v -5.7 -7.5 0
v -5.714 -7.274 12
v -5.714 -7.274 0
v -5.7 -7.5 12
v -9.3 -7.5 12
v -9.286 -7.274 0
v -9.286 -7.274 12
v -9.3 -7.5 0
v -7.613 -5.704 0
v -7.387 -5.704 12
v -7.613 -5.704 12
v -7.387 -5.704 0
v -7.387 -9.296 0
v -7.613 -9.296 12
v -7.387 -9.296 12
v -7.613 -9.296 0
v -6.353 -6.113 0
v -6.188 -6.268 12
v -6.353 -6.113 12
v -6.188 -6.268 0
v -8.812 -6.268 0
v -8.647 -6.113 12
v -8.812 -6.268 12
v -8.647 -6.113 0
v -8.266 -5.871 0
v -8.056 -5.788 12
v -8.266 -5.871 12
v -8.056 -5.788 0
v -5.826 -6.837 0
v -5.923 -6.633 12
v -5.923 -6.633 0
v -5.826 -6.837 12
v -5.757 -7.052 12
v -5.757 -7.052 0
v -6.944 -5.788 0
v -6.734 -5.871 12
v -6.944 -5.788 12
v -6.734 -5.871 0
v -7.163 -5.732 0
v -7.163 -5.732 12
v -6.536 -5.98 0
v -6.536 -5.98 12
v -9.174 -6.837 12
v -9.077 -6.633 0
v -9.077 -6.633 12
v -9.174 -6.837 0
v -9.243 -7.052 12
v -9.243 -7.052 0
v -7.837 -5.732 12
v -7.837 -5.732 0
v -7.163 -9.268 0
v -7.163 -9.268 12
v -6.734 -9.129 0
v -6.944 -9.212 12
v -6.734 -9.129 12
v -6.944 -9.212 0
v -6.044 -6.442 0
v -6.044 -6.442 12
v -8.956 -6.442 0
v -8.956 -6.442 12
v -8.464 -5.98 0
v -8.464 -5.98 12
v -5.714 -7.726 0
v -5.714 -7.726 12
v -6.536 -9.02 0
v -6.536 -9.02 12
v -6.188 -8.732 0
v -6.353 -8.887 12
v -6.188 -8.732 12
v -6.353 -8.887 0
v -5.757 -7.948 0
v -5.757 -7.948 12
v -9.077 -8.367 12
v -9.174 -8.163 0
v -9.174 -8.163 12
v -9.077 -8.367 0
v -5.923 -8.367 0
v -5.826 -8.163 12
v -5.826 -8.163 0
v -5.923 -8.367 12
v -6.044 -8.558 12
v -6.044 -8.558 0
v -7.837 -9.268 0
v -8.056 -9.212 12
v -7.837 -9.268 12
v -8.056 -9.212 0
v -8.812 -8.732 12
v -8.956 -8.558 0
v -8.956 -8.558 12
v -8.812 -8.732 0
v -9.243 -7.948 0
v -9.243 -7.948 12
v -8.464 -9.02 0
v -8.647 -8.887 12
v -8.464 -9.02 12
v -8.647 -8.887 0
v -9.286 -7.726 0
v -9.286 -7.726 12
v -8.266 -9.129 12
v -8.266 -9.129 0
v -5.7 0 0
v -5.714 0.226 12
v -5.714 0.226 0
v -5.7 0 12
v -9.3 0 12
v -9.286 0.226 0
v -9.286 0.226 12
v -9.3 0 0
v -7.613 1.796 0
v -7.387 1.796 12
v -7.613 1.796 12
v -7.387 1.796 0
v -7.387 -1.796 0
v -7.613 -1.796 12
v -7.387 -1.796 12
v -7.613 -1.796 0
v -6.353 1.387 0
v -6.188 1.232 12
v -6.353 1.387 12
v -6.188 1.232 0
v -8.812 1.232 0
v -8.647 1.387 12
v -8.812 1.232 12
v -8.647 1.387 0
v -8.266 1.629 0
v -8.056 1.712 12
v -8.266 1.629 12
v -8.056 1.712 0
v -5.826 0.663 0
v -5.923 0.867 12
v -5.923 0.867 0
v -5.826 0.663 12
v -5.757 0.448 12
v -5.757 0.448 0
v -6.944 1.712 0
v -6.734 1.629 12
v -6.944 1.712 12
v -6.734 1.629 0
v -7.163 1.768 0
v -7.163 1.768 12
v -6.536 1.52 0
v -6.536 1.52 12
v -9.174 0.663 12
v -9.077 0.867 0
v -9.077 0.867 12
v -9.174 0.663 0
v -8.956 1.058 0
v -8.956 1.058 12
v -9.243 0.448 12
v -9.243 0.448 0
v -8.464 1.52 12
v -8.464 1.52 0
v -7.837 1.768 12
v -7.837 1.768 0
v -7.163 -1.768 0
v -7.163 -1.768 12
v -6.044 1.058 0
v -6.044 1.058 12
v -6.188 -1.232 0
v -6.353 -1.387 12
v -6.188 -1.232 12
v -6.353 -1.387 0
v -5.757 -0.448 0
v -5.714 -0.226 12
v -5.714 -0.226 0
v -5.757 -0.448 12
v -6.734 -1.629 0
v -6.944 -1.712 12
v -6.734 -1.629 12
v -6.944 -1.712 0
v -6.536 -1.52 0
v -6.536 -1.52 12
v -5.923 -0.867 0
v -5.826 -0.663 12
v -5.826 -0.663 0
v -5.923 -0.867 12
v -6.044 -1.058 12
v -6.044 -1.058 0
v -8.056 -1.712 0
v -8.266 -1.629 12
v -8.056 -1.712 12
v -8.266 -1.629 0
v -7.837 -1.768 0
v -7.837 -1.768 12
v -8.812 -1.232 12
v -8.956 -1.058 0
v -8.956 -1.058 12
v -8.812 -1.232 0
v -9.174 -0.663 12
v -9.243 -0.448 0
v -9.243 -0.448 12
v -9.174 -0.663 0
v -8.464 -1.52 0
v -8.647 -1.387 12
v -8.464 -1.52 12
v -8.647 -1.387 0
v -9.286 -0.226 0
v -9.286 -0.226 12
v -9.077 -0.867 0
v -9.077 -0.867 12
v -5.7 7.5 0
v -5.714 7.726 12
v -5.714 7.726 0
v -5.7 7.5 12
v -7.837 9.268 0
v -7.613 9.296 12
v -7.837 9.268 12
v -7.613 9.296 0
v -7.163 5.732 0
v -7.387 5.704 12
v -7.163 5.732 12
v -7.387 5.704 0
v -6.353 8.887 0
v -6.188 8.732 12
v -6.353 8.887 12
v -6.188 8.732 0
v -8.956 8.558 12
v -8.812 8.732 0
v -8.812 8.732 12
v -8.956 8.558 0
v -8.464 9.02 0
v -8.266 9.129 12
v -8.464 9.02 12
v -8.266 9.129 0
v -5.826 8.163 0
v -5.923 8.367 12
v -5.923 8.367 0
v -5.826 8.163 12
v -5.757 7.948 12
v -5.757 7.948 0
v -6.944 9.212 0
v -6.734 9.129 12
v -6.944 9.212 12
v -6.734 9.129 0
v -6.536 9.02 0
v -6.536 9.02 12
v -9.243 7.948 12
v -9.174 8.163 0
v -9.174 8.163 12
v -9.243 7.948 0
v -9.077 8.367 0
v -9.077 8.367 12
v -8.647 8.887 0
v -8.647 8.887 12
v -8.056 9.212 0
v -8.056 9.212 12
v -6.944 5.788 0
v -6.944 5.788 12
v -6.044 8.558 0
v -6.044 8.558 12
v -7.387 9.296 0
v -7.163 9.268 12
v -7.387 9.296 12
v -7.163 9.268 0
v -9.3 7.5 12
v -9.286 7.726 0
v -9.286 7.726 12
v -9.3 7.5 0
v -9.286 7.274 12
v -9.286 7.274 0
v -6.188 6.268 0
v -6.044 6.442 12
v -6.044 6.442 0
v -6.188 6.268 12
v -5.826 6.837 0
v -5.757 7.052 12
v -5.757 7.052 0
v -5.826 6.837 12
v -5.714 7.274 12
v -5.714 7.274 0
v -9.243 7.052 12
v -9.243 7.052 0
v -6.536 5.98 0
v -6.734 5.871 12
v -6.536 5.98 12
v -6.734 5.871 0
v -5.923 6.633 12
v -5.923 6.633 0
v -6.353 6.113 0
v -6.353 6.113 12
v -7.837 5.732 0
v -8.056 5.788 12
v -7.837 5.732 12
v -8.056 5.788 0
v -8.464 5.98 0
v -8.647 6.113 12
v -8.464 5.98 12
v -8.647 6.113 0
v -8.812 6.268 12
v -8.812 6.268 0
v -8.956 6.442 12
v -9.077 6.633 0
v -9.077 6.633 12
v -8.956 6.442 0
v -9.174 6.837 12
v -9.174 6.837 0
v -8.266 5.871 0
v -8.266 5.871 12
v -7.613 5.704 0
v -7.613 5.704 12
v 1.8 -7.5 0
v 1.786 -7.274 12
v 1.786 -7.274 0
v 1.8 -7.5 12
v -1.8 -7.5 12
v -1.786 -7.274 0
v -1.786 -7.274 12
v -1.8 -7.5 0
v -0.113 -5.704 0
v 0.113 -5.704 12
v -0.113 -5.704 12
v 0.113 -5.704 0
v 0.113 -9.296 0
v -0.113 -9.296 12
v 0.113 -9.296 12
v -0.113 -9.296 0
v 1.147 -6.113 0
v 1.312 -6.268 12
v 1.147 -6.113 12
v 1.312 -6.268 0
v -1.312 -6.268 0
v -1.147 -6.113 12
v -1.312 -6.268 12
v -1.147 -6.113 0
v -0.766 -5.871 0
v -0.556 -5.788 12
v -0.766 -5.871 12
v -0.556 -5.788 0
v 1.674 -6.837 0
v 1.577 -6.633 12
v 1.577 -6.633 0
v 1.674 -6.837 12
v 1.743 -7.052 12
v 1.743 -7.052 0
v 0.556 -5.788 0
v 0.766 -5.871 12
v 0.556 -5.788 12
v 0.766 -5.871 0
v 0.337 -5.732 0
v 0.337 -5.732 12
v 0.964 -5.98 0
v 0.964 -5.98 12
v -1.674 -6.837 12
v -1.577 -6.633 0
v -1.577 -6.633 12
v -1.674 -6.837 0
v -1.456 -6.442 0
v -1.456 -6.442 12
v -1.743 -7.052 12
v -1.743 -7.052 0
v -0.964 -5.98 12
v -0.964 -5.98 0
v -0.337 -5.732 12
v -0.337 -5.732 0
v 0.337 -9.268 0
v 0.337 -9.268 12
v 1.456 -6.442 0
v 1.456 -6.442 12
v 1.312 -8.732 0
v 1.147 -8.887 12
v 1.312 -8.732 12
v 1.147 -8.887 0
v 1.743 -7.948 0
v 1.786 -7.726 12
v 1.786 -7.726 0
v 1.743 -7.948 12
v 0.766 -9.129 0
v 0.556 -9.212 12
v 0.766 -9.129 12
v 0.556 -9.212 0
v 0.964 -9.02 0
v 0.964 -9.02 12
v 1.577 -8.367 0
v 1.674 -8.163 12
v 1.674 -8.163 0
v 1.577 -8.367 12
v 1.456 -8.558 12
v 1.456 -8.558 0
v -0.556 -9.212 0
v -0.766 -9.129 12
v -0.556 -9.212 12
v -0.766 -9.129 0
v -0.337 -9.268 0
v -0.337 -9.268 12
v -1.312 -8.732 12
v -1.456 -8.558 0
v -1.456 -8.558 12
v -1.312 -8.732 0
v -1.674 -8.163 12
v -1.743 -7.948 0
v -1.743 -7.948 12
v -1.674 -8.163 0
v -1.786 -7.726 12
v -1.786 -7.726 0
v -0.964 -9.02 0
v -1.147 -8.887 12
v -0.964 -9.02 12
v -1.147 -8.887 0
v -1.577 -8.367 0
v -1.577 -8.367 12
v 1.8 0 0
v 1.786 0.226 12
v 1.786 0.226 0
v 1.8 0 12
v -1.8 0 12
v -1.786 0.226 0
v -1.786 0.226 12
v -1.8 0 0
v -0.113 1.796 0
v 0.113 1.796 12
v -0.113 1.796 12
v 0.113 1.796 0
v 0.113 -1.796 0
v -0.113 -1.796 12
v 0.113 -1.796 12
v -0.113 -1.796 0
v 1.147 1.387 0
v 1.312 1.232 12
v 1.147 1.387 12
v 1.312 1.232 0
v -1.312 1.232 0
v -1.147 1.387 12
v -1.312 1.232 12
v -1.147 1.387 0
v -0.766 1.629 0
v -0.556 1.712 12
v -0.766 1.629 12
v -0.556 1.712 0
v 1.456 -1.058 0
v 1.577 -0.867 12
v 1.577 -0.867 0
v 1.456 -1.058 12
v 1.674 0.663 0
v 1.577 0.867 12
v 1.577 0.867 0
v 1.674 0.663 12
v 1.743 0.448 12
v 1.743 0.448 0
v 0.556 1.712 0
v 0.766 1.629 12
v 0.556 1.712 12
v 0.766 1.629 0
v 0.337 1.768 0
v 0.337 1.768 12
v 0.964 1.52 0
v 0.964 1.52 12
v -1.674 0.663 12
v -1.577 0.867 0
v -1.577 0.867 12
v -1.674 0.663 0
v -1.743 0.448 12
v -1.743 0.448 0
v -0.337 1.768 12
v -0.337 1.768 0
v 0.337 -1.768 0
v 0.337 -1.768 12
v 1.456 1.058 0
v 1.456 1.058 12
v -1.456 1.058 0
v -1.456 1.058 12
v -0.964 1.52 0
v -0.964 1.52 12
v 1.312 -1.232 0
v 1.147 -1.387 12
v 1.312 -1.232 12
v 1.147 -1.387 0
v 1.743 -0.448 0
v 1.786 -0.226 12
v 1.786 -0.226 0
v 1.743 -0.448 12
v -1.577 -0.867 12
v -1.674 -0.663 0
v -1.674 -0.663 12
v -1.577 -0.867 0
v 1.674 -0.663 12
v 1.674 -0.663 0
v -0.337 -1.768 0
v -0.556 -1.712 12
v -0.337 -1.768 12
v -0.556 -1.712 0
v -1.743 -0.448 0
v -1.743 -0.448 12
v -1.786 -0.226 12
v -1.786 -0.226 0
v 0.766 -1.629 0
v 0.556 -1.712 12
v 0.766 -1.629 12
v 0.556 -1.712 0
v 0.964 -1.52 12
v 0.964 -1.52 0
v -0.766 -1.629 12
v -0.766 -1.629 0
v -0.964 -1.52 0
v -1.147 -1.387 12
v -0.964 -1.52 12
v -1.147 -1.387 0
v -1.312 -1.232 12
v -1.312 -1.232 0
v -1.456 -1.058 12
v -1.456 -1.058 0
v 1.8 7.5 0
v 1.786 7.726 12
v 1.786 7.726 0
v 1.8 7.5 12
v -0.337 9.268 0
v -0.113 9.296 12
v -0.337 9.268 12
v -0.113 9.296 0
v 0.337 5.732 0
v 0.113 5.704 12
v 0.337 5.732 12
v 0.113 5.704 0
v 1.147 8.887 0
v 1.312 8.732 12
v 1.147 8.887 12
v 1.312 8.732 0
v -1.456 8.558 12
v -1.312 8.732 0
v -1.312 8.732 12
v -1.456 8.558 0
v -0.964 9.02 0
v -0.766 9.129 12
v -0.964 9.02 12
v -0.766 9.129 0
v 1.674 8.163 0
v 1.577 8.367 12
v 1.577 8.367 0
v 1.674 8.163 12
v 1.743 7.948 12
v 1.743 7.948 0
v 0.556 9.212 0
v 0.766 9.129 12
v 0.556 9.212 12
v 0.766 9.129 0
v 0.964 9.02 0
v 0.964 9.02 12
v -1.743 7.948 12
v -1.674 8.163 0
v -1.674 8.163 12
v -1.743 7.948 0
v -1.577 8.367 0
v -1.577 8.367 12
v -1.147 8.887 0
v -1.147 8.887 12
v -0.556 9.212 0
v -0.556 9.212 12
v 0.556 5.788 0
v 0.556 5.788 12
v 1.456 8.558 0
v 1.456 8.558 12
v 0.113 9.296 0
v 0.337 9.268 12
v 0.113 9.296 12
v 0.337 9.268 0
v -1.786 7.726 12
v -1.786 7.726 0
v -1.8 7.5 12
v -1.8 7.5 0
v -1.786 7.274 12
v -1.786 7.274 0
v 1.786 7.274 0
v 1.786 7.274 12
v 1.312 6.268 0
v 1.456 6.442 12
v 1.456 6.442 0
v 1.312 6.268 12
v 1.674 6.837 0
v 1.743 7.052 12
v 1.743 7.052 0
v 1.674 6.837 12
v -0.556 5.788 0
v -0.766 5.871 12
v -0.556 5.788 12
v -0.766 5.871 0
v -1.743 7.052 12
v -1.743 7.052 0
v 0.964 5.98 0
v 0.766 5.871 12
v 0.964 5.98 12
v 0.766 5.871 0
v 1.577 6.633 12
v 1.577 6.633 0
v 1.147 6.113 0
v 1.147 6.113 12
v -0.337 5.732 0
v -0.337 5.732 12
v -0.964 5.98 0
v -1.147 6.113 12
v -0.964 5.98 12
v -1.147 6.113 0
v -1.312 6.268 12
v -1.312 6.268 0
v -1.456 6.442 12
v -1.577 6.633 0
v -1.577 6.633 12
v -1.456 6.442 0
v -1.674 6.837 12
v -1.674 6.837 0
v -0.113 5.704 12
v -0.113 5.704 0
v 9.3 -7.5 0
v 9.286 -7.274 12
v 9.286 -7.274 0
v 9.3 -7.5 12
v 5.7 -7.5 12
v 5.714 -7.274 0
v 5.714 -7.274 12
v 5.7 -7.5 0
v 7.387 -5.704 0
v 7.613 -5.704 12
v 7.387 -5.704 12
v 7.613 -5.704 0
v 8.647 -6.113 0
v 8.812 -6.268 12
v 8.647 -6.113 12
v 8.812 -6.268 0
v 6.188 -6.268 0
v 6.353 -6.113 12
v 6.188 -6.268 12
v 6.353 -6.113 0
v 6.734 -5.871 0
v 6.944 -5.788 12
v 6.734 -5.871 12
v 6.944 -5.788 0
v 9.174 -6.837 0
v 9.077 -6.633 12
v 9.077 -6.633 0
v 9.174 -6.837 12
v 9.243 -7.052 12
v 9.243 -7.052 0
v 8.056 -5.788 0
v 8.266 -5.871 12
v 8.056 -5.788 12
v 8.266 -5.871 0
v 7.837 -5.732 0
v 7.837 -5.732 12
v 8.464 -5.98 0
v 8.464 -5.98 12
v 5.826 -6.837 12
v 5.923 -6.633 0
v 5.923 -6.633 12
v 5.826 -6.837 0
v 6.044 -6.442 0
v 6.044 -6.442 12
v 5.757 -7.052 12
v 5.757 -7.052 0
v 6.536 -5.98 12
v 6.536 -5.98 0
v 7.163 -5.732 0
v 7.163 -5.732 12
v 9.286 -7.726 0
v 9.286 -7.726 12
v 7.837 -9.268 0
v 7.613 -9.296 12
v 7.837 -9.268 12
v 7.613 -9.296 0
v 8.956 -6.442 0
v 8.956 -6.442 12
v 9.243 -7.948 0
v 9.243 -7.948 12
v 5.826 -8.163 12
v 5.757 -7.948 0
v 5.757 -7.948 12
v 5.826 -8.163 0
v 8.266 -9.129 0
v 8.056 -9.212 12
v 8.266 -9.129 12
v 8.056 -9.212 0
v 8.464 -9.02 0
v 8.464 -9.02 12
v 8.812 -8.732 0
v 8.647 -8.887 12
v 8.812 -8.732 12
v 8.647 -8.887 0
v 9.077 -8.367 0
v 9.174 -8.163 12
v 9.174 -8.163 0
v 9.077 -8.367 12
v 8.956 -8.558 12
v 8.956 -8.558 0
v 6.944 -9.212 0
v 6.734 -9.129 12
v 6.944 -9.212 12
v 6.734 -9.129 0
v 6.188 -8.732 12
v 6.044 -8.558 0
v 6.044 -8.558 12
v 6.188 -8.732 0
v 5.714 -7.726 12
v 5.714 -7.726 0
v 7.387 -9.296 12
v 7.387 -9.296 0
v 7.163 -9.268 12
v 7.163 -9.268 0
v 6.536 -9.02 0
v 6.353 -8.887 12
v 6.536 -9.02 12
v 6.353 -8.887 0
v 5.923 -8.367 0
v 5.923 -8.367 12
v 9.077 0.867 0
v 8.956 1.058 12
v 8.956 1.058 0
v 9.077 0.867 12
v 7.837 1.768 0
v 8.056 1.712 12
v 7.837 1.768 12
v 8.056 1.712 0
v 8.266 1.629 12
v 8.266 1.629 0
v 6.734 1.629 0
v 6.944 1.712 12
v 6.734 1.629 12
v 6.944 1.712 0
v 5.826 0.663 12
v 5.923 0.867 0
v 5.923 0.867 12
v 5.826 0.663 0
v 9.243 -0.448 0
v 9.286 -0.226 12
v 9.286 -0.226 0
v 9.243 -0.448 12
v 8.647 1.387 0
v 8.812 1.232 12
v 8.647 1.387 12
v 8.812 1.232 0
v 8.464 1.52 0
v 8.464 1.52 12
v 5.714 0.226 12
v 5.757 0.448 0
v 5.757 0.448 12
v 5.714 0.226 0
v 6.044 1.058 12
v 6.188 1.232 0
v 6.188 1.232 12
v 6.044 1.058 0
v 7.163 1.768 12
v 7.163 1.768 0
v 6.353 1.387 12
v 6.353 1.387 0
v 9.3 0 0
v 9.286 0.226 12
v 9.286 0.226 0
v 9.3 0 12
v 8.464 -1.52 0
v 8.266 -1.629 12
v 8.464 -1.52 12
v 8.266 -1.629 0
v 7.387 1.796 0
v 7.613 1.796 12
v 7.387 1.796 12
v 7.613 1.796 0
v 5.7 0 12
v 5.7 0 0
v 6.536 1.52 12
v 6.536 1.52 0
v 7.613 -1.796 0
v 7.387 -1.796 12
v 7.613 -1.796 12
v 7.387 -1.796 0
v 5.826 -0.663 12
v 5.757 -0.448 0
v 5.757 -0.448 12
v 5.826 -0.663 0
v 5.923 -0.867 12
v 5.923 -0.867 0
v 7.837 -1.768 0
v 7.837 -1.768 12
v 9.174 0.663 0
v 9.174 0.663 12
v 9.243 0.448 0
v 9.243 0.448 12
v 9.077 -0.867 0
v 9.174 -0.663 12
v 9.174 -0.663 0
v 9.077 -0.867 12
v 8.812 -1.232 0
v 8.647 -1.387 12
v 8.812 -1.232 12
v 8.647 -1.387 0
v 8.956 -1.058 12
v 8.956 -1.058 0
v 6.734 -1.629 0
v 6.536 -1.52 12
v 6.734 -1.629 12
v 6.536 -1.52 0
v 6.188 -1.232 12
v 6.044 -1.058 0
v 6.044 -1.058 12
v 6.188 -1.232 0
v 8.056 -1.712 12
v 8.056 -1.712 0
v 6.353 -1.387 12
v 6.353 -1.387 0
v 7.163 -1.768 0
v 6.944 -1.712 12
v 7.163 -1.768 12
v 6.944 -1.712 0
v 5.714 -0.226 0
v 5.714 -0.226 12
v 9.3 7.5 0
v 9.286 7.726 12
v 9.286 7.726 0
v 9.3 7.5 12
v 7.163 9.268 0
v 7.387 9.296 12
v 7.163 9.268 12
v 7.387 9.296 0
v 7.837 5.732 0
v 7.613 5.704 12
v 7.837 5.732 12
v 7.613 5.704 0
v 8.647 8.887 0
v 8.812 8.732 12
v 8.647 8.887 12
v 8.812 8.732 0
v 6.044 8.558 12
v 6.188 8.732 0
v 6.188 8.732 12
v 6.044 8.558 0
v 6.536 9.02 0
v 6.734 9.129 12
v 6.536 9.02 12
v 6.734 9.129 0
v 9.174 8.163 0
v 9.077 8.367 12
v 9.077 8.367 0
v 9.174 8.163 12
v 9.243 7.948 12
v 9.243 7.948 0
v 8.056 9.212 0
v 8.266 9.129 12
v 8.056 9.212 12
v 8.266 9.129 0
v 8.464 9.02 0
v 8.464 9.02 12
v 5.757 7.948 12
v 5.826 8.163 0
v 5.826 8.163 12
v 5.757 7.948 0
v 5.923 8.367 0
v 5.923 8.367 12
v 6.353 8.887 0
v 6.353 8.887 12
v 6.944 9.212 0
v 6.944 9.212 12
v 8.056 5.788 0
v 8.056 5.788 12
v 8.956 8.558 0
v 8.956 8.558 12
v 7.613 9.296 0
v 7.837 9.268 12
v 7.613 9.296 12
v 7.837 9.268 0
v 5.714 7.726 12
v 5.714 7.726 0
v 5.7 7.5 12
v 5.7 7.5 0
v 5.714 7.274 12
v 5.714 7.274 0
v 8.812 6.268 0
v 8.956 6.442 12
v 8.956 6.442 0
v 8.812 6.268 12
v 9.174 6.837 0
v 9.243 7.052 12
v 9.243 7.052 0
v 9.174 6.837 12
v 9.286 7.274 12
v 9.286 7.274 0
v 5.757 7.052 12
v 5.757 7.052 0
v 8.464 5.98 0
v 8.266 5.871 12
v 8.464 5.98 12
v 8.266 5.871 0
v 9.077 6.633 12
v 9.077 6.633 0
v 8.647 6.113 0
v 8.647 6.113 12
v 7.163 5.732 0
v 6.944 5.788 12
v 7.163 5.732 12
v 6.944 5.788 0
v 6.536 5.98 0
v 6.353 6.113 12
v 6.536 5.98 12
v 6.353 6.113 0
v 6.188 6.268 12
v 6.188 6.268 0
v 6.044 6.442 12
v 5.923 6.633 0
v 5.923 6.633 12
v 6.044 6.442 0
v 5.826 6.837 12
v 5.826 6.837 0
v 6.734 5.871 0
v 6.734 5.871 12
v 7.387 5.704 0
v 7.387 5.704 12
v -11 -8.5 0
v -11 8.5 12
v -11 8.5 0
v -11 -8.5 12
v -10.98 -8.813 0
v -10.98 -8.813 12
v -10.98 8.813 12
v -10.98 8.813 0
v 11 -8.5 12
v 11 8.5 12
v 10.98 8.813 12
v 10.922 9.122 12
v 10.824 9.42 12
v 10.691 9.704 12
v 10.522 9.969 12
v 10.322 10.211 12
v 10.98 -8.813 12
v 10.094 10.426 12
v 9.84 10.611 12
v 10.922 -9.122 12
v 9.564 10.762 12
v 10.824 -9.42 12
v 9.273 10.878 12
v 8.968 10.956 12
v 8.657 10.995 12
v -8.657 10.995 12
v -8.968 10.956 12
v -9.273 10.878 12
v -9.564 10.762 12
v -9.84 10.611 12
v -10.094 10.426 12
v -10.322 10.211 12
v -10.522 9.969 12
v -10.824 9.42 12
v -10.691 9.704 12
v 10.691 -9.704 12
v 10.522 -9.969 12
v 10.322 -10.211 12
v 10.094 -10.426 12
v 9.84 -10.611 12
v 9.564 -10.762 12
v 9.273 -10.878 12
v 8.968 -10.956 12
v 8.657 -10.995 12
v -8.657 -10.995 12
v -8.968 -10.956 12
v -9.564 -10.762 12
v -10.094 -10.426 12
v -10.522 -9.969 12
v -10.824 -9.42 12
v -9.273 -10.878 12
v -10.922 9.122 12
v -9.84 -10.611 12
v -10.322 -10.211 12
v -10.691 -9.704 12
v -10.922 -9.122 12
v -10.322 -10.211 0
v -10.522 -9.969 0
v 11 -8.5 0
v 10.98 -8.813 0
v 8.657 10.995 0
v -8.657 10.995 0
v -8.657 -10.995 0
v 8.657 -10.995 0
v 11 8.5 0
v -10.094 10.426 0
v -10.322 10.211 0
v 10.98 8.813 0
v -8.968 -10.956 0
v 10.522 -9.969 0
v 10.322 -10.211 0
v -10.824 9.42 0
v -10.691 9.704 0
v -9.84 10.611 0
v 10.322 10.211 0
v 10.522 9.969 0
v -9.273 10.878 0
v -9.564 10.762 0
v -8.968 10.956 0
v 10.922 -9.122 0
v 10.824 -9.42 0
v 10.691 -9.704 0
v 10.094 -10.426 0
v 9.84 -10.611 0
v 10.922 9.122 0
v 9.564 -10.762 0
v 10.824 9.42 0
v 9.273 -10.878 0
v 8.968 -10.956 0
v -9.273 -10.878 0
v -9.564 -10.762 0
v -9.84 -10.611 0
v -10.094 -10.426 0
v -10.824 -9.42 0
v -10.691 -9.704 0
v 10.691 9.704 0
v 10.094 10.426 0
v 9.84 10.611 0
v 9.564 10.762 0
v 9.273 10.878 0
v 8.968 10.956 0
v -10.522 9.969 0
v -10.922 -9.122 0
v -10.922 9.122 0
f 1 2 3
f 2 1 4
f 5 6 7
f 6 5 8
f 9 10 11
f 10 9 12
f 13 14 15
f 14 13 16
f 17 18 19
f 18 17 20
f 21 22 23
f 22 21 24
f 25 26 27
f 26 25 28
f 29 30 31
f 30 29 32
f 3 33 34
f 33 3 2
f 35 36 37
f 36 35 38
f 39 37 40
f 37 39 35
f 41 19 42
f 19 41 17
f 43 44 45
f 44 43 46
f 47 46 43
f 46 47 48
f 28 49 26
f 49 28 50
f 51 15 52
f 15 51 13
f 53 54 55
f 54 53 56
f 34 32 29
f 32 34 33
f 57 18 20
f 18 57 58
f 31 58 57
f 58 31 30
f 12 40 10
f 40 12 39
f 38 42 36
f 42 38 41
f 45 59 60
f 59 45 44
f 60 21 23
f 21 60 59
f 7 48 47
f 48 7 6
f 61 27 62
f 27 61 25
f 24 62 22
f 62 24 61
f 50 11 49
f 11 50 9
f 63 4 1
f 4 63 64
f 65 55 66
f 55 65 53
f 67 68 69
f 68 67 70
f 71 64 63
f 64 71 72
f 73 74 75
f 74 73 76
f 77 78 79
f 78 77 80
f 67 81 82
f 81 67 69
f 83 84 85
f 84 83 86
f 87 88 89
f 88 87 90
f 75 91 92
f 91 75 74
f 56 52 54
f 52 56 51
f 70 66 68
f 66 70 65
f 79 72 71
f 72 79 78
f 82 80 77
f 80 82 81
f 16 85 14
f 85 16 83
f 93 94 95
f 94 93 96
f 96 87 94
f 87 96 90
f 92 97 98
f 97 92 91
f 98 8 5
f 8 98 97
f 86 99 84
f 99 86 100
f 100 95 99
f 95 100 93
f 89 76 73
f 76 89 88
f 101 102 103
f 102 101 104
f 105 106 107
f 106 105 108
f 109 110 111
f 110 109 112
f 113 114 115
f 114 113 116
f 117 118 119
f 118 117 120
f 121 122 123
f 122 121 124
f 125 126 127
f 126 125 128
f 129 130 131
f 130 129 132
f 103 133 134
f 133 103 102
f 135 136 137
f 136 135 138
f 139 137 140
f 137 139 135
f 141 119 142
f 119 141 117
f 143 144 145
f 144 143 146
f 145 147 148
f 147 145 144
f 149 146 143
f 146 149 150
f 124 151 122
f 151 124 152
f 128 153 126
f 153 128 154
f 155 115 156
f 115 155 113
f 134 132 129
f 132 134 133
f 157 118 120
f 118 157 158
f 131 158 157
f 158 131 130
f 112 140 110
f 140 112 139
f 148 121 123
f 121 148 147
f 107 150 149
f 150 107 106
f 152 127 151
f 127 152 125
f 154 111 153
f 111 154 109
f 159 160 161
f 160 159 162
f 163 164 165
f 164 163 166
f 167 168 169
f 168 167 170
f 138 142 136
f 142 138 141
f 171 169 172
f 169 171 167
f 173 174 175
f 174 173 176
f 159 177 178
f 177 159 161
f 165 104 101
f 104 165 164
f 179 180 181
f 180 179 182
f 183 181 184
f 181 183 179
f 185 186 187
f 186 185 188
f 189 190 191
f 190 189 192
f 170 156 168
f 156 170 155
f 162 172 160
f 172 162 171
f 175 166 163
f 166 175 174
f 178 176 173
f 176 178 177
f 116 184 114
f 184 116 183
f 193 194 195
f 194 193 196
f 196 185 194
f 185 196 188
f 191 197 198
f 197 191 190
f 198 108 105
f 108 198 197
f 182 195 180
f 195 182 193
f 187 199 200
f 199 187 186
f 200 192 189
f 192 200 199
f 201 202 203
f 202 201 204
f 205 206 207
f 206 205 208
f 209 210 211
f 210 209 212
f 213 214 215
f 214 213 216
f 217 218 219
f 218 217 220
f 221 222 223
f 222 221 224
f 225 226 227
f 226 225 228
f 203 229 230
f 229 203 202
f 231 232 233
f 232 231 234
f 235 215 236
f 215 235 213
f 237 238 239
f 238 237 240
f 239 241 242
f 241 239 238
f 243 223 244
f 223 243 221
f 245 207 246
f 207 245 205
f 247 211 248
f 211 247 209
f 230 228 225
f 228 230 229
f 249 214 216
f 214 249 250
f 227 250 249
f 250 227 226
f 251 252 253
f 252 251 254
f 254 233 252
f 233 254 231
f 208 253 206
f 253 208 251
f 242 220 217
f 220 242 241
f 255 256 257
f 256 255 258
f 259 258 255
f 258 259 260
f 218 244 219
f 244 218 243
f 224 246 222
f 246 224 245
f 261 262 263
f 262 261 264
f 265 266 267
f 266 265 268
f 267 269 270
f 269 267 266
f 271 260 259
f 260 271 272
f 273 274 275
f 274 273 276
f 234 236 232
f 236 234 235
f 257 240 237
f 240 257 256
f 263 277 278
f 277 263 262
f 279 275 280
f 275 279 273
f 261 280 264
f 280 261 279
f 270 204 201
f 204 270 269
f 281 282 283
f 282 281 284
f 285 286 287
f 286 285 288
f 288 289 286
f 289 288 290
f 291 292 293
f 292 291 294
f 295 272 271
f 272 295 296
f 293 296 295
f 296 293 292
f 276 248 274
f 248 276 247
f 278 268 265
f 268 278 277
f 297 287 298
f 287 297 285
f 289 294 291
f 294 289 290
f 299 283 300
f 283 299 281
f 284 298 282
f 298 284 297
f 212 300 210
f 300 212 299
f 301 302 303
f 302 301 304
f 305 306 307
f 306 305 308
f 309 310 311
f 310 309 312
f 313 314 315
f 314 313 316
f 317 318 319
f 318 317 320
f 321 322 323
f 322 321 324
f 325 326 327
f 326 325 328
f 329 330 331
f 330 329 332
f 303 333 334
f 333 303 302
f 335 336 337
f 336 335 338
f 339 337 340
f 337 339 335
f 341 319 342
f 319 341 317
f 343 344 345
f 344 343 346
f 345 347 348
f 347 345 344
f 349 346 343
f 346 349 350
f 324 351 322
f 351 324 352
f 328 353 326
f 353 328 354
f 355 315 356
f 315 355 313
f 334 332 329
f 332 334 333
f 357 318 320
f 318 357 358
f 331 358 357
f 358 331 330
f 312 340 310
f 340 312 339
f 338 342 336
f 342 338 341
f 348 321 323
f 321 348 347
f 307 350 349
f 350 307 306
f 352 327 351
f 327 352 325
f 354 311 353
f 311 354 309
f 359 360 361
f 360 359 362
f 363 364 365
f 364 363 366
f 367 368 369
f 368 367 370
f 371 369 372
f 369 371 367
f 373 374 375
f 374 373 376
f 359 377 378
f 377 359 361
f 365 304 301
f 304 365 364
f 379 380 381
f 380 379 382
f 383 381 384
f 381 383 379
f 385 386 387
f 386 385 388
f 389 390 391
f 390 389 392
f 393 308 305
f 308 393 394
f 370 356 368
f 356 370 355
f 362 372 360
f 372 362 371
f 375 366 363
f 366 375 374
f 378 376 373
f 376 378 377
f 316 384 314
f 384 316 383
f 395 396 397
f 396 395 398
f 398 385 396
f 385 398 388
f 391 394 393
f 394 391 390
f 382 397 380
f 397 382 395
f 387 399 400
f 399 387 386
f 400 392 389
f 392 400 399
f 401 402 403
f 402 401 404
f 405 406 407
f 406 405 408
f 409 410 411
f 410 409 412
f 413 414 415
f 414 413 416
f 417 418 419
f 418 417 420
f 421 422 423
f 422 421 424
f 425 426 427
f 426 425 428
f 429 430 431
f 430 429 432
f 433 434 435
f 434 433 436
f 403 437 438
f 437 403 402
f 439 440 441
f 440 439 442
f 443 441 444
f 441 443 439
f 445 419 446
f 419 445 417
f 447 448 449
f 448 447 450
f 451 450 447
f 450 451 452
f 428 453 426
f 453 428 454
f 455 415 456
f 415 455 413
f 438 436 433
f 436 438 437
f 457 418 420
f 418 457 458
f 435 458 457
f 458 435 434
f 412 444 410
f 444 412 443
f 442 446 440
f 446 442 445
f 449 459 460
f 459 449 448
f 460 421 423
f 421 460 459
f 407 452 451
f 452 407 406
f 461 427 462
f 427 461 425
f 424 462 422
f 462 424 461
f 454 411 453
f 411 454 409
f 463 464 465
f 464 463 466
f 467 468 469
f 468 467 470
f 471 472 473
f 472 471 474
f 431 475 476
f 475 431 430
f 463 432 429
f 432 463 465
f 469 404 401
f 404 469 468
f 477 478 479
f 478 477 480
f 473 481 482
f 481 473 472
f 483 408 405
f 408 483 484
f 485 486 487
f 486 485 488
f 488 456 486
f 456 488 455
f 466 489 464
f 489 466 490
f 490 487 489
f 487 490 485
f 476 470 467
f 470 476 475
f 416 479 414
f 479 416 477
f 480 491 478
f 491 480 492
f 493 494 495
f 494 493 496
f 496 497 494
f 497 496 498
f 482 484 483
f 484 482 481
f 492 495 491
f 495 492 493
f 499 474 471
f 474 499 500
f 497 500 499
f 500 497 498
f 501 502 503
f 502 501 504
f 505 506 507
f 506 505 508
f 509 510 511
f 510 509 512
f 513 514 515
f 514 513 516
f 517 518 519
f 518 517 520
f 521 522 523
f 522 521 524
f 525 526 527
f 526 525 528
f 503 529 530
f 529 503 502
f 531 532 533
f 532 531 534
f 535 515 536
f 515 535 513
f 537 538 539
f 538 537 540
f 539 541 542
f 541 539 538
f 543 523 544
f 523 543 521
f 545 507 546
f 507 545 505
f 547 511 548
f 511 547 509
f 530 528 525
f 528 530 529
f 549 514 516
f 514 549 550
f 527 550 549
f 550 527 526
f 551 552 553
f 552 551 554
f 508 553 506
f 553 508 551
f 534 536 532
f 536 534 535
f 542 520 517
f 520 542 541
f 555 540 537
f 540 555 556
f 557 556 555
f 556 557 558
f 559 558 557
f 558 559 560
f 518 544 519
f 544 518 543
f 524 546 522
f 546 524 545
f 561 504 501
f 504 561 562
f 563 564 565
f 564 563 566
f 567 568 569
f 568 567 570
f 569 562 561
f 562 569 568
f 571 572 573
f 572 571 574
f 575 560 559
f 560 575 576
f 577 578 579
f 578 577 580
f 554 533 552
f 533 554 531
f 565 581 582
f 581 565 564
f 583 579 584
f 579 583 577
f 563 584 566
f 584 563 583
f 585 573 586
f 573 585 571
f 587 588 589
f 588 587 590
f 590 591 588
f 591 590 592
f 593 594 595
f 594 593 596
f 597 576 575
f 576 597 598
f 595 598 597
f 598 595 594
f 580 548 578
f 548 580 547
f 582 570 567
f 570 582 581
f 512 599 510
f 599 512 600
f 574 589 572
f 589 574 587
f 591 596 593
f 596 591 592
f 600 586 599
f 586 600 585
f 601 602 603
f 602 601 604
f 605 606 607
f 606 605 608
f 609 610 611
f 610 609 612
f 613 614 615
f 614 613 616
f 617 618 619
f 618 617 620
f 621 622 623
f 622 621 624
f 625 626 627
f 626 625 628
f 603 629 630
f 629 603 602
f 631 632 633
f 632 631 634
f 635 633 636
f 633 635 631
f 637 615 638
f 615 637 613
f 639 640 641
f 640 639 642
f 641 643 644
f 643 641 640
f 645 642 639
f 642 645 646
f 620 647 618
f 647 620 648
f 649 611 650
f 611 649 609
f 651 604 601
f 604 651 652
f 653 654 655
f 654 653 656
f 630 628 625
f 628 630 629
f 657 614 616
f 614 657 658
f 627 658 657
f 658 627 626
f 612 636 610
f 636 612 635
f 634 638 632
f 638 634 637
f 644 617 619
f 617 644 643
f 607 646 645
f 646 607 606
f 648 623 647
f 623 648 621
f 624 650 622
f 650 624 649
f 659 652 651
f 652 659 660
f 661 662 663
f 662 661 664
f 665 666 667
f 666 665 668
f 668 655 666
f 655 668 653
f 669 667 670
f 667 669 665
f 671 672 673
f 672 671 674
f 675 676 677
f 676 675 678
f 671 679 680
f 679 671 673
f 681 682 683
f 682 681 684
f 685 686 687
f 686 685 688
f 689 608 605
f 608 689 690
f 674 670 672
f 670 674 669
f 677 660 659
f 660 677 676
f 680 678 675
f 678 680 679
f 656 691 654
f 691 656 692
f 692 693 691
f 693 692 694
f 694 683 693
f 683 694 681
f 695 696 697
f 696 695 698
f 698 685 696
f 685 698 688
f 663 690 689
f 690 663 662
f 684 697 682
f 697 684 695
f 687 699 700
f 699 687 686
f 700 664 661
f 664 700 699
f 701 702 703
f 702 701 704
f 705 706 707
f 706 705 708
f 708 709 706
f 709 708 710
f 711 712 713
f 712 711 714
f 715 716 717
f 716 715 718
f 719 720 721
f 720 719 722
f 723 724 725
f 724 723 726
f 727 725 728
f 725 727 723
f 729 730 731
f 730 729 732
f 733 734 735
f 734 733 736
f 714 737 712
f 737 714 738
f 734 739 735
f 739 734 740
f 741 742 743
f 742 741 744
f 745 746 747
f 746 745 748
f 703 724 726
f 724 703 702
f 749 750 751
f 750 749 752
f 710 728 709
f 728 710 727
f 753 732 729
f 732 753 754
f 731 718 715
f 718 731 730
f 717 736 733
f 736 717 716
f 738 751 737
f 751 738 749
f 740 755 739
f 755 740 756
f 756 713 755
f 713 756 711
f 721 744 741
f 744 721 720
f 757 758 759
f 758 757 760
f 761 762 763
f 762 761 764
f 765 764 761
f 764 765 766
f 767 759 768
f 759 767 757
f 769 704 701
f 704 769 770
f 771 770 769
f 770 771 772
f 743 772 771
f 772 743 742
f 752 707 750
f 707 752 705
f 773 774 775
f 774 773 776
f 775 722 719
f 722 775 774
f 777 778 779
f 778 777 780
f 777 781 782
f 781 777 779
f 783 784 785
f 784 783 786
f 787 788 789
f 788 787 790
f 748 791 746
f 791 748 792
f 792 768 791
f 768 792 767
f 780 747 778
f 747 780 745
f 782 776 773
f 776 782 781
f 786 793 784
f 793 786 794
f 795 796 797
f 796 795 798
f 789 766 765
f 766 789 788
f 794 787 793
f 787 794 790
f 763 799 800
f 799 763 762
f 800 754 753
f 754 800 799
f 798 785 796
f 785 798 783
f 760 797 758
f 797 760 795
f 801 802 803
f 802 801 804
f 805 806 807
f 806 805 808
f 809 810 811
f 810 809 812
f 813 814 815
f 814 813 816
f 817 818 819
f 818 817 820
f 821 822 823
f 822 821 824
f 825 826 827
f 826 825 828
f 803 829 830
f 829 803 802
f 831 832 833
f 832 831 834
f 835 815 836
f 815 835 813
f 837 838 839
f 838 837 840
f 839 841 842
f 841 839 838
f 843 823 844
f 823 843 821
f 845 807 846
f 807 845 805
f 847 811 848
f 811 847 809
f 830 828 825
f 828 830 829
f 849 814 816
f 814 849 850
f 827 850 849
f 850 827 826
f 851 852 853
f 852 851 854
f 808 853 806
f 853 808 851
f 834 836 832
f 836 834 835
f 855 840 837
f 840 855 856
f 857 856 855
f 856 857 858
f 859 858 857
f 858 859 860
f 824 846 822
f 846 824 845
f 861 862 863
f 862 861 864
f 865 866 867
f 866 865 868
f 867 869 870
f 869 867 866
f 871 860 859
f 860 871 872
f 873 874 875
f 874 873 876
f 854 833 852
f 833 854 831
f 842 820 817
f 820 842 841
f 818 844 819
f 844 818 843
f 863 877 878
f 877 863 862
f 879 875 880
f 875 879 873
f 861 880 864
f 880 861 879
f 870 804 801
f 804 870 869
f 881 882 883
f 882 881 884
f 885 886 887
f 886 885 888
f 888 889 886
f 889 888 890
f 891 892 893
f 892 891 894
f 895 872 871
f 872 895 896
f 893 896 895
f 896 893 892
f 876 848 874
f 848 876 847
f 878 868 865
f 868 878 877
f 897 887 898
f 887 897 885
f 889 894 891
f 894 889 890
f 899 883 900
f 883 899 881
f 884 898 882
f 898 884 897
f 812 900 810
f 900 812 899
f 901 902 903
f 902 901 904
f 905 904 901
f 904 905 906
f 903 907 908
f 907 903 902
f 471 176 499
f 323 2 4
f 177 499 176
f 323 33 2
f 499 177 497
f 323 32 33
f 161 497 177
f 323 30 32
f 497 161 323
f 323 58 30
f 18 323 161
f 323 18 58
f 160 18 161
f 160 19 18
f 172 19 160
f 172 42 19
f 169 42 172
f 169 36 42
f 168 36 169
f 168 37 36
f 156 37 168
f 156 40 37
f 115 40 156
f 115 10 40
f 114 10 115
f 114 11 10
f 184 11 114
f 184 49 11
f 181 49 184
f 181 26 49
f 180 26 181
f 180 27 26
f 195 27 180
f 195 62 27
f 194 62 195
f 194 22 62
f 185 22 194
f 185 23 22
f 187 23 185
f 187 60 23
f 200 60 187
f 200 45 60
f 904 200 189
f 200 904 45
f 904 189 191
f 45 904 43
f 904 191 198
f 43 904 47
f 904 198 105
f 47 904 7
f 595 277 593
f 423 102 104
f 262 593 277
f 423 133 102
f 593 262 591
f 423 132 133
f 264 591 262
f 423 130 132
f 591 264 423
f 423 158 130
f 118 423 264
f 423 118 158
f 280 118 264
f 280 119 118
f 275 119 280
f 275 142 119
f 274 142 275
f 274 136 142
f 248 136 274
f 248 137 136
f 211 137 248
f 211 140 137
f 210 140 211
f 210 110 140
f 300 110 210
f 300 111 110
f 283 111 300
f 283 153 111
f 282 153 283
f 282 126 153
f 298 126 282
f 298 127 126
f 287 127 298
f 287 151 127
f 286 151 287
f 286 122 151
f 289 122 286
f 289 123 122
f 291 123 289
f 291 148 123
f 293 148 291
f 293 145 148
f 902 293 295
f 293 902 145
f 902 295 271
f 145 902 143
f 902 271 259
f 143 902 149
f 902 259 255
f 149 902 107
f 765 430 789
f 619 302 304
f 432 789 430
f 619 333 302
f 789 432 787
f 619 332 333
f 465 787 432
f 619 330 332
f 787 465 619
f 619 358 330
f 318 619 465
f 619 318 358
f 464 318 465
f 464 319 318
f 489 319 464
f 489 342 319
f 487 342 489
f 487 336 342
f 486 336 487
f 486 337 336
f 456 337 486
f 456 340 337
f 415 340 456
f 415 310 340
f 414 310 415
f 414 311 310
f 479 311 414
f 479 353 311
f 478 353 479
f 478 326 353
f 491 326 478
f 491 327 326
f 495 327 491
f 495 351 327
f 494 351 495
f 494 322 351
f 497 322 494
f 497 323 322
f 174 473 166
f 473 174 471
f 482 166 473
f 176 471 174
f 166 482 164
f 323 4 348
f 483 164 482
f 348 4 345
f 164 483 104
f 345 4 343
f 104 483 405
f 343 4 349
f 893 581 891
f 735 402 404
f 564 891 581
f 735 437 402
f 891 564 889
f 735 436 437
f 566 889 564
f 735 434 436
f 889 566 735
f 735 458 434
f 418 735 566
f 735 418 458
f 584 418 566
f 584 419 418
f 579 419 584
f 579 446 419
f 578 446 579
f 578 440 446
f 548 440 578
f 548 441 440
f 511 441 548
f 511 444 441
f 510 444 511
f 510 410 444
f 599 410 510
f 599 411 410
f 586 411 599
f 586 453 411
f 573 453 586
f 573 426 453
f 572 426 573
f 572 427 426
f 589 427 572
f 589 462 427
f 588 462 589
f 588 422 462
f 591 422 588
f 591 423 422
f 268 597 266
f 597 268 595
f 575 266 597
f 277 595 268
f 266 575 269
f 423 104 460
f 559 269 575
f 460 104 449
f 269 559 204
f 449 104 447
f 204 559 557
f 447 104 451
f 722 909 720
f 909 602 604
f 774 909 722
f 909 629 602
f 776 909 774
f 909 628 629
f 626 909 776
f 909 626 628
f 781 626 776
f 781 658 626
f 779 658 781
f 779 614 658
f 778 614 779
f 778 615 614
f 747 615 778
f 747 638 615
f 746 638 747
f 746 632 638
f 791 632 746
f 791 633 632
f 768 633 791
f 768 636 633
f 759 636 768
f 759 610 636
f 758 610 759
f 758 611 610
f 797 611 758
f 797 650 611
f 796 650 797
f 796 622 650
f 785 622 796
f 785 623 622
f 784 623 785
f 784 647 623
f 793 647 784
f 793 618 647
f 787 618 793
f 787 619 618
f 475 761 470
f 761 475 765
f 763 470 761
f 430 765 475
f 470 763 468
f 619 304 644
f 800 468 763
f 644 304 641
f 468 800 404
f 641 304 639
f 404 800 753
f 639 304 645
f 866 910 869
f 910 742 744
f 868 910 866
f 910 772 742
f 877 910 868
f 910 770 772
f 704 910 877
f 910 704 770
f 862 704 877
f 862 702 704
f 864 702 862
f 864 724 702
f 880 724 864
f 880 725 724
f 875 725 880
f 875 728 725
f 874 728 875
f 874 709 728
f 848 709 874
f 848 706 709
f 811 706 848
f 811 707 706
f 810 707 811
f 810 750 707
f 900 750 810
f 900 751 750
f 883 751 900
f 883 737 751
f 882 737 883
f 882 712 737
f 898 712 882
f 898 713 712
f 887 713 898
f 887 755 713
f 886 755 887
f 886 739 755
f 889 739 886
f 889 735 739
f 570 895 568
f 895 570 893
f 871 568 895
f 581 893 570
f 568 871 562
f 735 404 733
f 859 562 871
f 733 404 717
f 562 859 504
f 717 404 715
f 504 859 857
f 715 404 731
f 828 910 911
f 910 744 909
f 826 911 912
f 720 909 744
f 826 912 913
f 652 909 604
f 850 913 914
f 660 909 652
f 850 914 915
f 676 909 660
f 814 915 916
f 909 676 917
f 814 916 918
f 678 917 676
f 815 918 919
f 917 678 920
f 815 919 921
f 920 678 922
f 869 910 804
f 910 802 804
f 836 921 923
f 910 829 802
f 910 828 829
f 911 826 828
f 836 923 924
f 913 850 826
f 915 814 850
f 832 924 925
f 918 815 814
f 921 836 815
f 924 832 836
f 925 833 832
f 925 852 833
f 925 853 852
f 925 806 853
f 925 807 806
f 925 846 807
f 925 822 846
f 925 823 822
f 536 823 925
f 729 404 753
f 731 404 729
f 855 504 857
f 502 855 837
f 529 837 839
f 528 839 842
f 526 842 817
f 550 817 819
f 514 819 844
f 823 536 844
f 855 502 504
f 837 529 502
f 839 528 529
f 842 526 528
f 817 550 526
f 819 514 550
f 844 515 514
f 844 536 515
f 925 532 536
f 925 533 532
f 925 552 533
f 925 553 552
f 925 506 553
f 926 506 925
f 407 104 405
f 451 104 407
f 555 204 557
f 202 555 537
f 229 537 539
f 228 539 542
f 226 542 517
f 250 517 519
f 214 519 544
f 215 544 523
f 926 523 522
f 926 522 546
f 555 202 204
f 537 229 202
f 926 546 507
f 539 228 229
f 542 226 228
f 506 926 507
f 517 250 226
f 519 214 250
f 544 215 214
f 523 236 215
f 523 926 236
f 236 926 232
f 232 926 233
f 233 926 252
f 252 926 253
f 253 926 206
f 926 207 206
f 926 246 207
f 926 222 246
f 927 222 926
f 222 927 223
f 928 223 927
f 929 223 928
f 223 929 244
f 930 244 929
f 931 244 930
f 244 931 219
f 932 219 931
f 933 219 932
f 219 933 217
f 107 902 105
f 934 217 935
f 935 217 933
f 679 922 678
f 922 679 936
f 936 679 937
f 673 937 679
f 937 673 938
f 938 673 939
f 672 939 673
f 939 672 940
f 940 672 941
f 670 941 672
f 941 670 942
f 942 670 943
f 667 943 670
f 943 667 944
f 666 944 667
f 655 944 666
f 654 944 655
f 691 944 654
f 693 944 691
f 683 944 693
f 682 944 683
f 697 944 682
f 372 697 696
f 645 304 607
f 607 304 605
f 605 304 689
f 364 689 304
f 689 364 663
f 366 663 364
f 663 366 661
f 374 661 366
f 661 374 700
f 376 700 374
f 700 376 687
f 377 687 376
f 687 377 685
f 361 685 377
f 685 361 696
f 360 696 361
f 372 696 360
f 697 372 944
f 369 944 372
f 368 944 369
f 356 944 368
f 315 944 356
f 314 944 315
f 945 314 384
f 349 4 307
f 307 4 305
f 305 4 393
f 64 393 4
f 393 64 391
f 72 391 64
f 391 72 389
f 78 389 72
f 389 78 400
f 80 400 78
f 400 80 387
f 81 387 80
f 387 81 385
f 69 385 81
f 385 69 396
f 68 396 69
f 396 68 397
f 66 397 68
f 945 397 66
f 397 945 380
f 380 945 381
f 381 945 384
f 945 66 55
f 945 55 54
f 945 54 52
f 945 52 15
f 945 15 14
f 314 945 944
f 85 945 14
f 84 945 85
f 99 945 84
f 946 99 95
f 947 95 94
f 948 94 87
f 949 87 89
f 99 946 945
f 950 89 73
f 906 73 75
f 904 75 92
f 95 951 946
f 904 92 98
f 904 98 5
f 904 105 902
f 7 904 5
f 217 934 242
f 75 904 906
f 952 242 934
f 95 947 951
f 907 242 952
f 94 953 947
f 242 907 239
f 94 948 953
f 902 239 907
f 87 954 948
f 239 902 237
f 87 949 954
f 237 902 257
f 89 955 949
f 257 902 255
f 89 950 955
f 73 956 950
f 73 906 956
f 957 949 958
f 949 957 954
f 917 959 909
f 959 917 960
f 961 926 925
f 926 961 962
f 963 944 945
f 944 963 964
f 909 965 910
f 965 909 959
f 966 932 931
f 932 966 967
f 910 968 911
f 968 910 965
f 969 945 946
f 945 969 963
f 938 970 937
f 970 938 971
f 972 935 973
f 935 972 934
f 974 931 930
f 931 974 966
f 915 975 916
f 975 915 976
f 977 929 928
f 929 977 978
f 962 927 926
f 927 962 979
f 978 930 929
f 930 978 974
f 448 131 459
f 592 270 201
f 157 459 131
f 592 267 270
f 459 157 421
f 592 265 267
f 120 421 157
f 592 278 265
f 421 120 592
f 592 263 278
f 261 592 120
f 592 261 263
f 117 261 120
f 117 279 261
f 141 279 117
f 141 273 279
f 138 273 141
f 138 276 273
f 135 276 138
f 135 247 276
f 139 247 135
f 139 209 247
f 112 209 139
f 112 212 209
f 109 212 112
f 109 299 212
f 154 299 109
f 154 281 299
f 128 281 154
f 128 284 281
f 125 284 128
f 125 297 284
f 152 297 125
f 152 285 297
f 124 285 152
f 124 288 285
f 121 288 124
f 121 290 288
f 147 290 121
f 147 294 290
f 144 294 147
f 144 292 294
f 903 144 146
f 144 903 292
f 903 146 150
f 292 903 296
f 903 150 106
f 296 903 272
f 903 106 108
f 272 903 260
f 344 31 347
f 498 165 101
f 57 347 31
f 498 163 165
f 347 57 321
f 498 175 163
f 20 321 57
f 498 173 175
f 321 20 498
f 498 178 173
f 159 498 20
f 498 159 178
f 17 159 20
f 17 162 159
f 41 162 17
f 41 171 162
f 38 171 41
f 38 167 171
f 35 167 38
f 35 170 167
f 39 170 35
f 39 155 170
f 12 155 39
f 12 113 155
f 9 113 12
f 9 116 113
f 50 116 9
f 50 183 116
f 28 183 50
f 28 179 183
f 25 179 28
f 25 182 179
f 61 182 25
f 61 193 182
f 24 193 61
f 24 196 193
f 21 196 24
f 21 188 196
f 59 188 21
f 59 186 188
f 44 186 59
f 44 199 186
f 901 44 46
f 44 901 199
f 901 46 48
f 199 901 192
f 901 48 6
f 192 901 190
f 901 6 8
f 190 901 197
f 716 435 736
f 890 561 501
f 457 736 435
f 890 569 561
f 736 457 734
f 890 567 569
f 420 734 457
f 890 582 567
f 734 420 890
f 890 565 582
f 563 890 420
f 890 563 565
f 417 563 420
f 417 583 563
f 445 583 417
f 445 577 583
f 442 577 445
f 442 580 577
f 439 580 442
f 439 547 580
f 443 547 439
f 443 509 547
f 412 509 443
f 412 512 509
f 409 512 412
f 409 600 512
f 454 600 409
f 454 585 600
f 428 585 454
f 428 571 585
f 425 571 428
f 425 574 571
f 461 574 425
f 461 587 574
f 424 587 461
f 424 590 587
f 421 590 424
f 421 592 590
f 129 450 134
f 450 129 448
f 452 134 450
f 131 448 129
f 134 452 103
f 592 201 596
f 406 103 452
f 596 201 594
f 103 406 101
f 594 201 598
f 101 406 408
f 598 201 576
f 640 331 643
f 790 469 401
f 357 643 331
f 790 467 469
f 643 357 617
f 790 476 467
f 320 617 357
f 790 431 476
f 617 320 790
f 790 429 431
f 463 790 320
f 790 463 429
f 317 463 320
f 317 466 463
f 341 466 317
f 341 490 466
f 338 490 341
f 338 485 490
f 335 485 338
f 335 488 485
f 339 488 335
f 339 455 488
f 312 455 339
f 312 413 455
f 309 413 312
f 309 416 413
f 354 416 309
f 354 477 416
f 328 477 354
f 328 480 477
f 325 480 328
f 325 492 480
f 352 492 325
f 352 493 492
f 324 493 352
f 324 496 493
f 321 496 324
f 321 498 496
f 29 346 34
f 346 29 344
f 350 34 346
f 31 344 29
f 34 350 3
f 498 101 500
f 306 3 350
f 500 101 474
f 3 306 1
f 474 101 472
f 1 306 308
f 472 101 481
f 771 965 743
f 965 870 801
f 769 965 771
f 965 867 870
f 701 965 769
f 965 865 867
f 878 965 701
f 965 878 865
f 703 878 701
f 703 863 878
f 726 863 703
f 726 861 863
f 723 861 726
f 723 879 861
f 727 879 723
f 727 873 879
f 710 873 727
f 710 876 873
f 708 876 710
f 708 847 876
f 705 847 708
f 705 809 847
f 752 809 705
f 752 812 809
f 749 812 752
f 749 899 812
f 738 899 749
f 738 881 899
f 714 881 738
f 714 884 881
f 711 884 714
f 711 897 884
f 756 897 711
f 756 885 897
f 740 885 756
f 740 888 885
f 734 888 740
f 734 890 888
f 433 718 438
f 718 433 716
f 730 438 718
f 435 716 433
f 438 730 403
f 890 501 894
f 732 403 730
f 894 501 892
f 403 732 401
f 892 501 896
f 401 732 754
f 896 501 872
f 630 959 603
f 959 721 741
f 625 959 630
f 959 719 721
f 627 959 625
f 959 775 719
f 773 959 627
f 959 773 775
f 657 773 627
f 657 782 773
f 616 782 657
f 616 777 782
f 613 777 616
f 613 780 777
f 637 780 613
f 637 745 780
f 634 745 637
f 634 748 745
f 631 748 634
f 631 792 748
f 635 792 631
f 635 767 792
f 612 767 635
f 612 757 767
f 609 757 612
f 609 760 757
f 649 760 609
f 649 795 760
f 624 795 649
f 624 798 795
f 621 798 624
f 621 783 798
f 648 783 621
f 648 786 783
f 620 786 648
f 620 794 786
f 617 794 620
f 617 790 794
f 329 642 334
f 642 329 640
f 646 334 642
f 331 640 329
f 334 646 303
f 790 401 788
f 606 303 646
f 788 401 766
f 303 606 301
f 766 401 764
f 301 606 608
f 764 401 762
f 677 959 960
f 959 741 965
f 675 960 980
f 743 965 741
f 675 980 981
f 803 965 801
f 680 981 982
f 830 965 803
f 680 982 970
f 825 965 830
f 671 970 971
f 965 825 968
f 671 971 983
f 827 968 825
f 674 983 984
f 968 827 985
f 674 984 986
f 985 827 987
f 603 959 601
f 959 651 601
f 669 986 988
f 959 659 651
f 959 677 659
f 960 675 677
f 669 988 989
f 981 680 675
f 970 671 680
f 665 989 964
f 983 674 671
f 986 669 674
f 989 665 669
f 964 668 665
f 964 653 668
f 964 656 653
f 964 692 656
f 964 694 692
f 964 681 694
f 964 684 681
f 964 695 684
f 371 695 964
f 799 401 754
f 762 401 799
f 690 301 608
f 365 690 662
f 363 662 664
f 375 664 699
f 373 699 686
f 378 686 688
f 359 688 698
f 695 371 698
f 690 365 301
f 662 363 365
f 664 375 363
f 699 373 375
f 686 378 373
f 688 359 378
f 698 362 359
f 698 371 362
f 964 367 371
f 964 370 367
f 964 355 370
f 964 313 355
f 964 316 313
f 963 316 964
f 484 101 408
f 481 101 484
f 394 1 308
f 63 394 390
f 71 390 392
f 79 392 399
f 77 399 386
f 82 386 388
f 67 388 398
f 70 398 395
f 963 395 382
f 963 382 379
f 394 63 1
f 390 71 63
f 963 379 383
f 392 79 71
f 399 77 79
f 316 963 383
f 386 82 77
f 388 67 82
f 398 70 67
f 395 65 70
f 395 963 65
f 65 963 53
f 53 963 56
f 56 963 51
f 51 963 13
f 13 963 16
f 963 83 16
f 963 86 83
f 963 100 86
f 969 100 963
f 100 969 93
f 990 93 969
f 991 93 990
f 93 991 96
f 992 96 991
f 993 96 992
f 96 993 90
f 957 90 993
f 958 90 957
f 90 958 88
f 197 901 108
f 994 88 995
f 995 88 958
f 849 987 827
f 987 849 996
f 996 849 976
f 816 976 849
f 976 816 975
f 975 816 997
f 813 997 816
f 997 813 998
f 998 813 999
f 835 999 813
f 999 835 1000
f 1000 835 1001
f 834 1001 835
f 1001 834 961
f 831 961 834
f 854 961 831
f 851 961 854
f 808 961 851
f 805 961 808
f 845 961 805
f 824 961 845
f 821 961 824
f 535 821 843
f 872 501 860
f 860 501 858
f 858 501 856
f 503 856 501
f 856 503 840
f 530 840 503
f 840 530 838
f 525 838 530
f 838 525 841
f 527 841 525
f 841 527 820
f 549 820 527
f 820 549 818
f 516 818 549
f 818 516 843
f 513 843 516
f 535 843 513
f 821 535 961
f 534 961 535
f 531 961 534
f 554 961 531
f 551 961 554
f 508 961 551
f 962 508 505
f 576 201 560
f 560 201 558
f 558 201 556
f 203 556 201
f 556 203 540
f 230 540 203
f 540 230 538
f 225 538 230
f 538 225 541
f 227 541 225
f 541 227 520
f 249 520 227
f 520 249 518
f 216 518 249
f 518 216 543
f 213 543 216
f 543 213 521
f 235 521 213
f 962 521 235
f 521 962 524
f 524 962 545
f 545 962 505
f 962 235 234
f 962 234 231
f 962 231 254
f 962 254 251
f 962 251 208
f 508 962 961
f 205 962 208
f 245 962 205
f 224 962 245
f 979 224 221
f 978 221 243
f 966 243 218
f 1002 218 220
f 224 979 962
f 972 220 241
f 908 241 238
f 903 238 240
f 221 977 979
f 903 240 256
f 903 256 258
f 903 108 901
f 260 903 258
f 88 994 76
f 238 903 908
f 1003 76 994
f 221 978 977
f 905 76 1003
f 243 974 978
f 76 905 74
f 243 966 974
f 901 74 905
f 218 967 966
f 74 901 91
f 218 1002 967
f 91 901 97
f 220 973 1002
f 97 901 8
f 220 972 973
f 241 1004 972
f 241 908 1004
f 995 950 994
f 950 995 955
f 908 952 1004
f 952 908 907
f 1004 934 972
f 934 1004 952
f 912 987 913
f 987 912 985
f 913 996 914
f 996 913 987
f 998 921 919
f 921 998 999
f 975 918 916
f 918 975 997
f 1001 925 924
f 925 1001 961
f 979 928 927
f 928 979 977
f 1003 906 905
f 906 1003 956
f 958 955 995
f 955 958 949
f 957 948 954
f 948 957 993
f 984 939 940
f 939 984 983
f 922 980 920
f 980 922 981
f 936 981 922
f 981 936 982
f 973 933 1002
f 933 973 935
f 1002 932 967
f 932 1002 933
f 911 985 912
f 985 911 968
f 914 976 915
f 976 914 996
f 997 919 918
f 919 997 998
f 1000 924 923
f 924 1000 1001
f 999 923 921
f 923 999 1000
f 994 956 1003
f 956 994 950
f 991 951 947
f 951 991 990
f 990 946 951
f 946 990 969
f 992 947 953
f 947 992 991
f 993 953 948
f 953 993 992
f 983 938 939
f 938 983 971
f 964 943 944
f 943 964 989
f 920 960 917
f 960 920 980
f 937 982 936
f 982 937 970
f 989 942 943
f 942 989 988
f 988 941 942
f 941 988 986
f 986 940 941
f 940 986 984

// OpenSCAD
$fn = 50;


difference() {
	union() {
		translate(v = [0, 0, 0]) {
			rotate(a = [0, 0, 0]) {
				hull() {
					translate(v = [-8.5000000000, 8.5000000000, 0]) {
						rotate(a = [0, 0, 0]) {
							translate(v = [0, 0, 0]) {
								rotate(a = [0, 0, 0]) {
									cylinder(h = 12, r = 2.5000000000);
								}
							}
						}
					}
					translate(v = [8.5000000000, 8.5000000000, 0]) {
						rotate(a = [0, 0, 0]) {
							translate(v = [0, 0, 0]) {
								rotate(a = [0, 0, 0]) {
									cylinder(h = 12, r = 2.5000000000);
								}
							}
						}
					}
					translate(v = [-8.5000000000, -8.5000000000, 0]) {
						rotate(a = [0, 0, 0]) {
							translate(v = [0, 0, 0]) {
								rotate(a = [0, 0, 0]) {
									cylinder(h = 12, r = 2.5000000000);
								}
							}
						}
					}
					translate(v = [8.5000000000, -8.5000000000, 0]) {
						rotate(a = [0, 0, 0]) {
							translate(v = [0, 0, 0]) {
								rotate(a = [0, 0, 0]) {
									cylinder(h = 12, r = 2.5000000000);
								}
							}
						}
					}
				}
			}
		}
	}
	union() {
		translate(v = [-7.5000000000, -7.5000000000, 0]) {
			rotate(a = [0, 0, 0]) {
				translate(v = [0, 0, -50]) {
					rotate(a = [0, 0, 0]) {
						cylinder(h = 100, r = 1.8000000000);
					}
				}
			}
		}
		translate(v = [-7.5000000000, 0.0000000000, 0]) {
			rotate(a = [0, 0, 0]) {
				translate(v = [0, 0, -50]) {
					rotate(a = [0, 0, 0]) {
						cylinder(h = 100, r = 1.8000000000);
					}
				}
			}
		}
		translate(v = [-7.5000000000, 7.5000000000, 0]) {
			rotate(a = [0, 0, 0]) {
				translate(v = [0, 0, -50]) {
					rotate(a = [0, 0, 0]) {
						cylinder(h = 100, r = 1.8000000000);
					}
				}
			}
		}
		translate(v = [0.0000000000, -7.5000000000, 0]) {
			rotate(a = [0, 0, 0]) {
				translate(v = [0, 0, -50]) {
					rotate(a = [0, 0, 0]) {
						cylinder(h = 100, r = 1.8000000000);
					}
				}
			}
		}
		translate(v = [0.0000000000, 0.0000000000, 0]) {
			rotate(a = [0, 0, 0]) {
				translate(v = [0, 0, -50]) {
					rotate(a = [0, 0, 0]) {
						cylinder(h = 100, r = 1.8000000000);
					}
				}
			}
		}
		translate(v = [0.0000000000, 7.5000000000, 0]) {
			rotate(a = [0, 0, 0]) {
				translate(v = [0, 0, -50]) {
					rotate(a = [0, 0, 0]) {
						cylinder(h = 100, r = 1.8000000000);
					}
				}
			}
		}
		translate(v = [7.5000000000, -7.5000000000, 0]) {
			rotate(a = [0, 0, 0]) {
				translate(v = [0, 0, -50]) {
					rotate(a = [0, 0, 0]) {
						cylinder(h = 100, r = 1.8000000000);
					}
				}
			}
		}
		translate(v = [7.5000000000, 0.0000000000, 0]) {
			rotate(a = [0, 0, 0]) {
				translate(v = [0, 0, -50]) {
					rotate(a = [0, 0, 0]) {
						cylinder(h = 100, r = 1.8000000000);
					}
				}
			}
		}
		translate(v = [7.5000000000, 7.5000000000, 0]) {
			rotate(a = [0, 0, 0]) {
				translate(v = [0, 0, -50]) {
					rotate(a = [0, 0, 0]) {
						cylinder(h = 100, r = 1.8000000000);
					}
				}
			}
		}
	}
}
